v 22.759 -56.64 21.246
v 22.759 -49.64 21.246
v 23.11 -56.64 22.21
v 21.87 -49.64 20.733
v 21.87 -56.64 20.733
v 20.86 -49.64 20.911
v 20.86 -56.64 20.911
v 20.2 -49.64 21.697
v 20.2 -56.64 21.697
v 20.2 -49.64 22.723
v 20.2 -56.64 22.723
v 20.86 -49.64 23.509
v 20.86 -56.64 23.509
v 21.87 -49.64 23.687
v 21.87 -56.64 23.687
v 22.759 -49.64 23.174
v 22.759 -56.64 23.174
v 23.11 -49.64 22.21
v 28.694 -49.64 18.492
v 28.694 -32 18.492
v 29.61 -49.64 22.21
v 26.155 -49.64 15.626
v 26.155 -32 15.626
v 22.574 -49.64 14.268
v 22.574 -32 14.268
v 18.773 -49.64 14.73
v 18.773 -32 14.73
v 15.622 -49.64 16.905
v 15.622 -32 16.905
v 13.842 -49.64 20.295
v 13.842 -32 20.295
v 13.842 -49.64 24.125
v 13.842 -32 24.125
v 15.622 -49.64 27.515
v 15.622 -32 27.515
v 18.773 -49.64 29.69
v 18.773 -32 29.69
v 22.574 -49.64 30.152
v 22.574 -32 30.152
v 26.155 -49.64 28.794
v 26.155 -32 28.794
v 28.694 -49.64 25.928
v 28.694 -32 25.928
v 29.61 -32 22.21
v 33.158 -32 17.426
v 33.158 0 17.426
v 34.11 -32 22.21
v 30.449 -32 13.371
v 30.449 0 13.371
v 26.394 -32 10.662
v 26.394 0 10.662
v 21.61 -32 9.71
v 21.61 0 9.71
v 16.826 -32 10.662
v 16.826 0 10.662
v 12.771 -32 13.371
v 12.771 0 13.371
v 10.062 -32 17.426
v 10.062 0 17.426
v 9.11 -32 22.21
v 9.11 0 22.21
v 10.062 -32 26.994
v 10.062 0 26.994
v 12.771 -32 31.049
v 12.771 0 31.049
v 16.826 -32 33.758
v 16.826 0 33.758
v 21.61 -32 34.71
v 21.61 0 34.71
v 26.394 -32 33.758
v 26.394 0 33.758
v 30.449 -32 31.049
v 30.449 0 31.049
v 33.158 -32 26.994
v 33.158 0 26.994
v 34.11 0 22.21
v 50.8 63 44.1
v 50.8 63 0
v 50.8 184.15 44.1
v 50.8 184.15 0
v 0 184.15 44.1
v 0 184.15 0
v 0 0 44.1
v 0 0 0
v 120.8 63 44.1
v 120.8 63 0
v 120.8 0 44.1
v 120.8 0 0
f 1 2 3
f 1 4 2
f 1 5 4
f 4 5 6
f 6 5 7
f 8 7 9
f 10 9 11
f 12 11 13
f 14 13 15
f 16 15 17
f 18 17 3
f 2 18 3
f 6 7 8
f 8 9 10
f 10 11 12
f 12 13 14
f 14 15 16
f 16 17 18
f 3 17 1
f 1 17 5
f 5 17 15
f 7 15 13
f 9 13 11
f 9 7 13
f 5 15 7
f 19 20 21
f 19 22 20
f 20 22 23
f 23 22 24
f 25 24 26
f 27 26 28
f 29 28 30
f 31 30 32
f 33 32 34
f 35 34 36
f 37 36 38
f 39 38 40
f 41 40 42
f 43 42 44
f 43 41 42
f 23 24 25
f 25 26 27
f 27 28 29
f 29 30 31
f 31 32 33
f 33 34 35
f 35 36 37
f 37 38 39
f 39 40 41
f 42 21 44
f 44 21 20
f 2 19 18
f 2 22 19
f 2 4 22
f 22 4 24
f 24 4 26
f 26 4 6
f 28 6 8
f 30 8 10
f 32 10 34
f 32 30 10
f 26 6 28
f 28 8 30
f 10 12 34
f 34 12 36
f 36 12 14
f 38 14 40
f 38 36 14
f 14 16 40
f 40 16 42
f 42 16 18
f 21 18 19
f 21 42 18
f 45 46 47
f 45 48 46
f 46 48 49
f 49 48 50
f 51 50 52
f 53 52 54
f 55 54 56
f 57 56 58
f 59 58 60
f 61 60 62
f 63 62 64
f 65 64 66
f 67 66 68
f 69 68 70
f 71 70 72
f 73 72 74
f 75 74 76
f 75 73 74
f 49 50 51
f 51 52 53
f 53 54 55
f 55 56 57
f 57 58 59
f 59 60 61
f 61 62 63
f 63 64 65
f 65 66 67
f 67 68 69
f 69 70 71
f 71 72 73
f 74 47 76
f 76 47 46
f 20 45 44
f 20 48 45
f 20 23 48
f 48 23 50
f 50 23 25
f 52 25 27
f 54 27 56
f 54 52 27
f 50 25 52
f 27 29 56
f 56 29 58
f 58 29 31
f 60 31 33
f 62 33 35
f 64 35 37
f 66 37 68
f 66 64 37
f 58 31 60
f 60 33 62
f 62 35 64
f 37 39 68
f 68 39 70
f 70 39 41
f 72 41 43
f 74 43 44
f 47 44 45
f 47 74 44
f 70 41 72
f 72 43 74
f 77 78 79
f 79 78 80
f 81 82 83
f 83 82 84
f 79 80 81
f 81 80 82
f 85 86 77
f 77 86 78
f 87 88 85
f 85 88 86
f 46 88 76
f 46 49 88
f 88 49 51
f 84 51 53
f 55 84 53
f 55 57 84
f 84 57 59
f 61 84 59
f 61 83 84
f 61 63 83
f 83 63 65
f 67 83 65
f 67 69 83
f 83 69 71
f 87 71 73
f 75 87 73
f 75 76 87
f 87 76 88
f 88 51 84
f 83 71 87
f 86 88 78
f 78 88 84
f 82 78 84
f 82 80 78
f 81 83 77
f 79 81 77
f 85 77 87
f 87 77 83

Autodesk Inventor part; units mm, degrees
ref_plane "YZ Plane" through (0, 0, 0) normal (1, 0, 0) x (0, 1, 0)
ref_plane "XZ Plane" through (0, 0, 0) normal (0, 1, 0) x (-1, 0, 0)
ref_plane "XY Plane" through (0, 0, 0) normal (0, 0, 1) x (1, 0, 0)
sketch "Sketch1" plane through (0, 0, 0) normal (0, 0, 1) x (1, 0, 0)
  line L0 (0, 0) -> (50.8, 0)
  line L1 (50.8, 63) -> (50.8, 184.15)
  line L2 (50.8, 184.15) -> (0, 184.15)
  line L3 (0, 184.15) -> (0, 0)
  line L4 (50.8, 0) -> (120.8, 0)
  line L5 (120.8, 0) -> (120.8, 63)
  line L6 (120.8, 63) -> (50.8, 63)
  line L7 (50.8, 63) -> (50.8, 0)
  dimension "d0" = 50.8
  dimension "d2" = 70
  dimension "d3" = 63
extrude "Extrusion2" add sketch "Sketch1" along normal blind 44.1
sketch "Sketch3" plane through (0, 0, 0) normal (0, -1, 0) x (1, 0, 0)
  line L0 (120.8, 44.1) -> (0, 44.1) projected
  line L1 (0, 0) -> (0, 44.1) projected
  line L2 (0, 0) -> (120.8, 0) projected
  line L3 (120.8, 0) -> (120.8, 44.1) projected
sketch "Sketch4" plane through (0, 0, 0) normal (0, -1, 0) x (1, 0, 0)
  circle A0 centre (21.61, 22.21) radius 12.5
  dimension "d8" = 25
extrude "Extrusion3" add sketch "Sketch4" along normal blind 32
sketch "Sketch5" plane through (21.61, -32, 22.21) normal (0, -1, 0) x (1, 0, 0)
  circle A0 centre (0, 0) radius 12.5 projected
  circle A1 centre (0, 0) radius 8
  point P0 (-21.61, -22.21)
  dimension "d12" = 16
extrude "Extrusion4" add sketch "Sketch5" along normal blind 17.64 contours A1
sketch "Sketch6" plane through (21.61, -49.64, 22.21) normal (0, -1, 0) x (1, 0, 0)
  circle A0 centre (0, 0) radius 8 projected
  circle A1 centre (0, 0) radius 1.5
  point P0 (-21.61, -22.21)
  dimension "d15" = 3
extrude "Extrusion5" add sketch "Sketch6" along normal blind 7 contours A1
sketch "Sketch7" plane through (21.61, -56.64, 22.21) normal (0, -1, 0) x (1, 0, 0)
  circle A0 centre (0, 0) radius 1.5 projected
  point P0 (-21.61, -22.21)
properties part number "tool Part1"
